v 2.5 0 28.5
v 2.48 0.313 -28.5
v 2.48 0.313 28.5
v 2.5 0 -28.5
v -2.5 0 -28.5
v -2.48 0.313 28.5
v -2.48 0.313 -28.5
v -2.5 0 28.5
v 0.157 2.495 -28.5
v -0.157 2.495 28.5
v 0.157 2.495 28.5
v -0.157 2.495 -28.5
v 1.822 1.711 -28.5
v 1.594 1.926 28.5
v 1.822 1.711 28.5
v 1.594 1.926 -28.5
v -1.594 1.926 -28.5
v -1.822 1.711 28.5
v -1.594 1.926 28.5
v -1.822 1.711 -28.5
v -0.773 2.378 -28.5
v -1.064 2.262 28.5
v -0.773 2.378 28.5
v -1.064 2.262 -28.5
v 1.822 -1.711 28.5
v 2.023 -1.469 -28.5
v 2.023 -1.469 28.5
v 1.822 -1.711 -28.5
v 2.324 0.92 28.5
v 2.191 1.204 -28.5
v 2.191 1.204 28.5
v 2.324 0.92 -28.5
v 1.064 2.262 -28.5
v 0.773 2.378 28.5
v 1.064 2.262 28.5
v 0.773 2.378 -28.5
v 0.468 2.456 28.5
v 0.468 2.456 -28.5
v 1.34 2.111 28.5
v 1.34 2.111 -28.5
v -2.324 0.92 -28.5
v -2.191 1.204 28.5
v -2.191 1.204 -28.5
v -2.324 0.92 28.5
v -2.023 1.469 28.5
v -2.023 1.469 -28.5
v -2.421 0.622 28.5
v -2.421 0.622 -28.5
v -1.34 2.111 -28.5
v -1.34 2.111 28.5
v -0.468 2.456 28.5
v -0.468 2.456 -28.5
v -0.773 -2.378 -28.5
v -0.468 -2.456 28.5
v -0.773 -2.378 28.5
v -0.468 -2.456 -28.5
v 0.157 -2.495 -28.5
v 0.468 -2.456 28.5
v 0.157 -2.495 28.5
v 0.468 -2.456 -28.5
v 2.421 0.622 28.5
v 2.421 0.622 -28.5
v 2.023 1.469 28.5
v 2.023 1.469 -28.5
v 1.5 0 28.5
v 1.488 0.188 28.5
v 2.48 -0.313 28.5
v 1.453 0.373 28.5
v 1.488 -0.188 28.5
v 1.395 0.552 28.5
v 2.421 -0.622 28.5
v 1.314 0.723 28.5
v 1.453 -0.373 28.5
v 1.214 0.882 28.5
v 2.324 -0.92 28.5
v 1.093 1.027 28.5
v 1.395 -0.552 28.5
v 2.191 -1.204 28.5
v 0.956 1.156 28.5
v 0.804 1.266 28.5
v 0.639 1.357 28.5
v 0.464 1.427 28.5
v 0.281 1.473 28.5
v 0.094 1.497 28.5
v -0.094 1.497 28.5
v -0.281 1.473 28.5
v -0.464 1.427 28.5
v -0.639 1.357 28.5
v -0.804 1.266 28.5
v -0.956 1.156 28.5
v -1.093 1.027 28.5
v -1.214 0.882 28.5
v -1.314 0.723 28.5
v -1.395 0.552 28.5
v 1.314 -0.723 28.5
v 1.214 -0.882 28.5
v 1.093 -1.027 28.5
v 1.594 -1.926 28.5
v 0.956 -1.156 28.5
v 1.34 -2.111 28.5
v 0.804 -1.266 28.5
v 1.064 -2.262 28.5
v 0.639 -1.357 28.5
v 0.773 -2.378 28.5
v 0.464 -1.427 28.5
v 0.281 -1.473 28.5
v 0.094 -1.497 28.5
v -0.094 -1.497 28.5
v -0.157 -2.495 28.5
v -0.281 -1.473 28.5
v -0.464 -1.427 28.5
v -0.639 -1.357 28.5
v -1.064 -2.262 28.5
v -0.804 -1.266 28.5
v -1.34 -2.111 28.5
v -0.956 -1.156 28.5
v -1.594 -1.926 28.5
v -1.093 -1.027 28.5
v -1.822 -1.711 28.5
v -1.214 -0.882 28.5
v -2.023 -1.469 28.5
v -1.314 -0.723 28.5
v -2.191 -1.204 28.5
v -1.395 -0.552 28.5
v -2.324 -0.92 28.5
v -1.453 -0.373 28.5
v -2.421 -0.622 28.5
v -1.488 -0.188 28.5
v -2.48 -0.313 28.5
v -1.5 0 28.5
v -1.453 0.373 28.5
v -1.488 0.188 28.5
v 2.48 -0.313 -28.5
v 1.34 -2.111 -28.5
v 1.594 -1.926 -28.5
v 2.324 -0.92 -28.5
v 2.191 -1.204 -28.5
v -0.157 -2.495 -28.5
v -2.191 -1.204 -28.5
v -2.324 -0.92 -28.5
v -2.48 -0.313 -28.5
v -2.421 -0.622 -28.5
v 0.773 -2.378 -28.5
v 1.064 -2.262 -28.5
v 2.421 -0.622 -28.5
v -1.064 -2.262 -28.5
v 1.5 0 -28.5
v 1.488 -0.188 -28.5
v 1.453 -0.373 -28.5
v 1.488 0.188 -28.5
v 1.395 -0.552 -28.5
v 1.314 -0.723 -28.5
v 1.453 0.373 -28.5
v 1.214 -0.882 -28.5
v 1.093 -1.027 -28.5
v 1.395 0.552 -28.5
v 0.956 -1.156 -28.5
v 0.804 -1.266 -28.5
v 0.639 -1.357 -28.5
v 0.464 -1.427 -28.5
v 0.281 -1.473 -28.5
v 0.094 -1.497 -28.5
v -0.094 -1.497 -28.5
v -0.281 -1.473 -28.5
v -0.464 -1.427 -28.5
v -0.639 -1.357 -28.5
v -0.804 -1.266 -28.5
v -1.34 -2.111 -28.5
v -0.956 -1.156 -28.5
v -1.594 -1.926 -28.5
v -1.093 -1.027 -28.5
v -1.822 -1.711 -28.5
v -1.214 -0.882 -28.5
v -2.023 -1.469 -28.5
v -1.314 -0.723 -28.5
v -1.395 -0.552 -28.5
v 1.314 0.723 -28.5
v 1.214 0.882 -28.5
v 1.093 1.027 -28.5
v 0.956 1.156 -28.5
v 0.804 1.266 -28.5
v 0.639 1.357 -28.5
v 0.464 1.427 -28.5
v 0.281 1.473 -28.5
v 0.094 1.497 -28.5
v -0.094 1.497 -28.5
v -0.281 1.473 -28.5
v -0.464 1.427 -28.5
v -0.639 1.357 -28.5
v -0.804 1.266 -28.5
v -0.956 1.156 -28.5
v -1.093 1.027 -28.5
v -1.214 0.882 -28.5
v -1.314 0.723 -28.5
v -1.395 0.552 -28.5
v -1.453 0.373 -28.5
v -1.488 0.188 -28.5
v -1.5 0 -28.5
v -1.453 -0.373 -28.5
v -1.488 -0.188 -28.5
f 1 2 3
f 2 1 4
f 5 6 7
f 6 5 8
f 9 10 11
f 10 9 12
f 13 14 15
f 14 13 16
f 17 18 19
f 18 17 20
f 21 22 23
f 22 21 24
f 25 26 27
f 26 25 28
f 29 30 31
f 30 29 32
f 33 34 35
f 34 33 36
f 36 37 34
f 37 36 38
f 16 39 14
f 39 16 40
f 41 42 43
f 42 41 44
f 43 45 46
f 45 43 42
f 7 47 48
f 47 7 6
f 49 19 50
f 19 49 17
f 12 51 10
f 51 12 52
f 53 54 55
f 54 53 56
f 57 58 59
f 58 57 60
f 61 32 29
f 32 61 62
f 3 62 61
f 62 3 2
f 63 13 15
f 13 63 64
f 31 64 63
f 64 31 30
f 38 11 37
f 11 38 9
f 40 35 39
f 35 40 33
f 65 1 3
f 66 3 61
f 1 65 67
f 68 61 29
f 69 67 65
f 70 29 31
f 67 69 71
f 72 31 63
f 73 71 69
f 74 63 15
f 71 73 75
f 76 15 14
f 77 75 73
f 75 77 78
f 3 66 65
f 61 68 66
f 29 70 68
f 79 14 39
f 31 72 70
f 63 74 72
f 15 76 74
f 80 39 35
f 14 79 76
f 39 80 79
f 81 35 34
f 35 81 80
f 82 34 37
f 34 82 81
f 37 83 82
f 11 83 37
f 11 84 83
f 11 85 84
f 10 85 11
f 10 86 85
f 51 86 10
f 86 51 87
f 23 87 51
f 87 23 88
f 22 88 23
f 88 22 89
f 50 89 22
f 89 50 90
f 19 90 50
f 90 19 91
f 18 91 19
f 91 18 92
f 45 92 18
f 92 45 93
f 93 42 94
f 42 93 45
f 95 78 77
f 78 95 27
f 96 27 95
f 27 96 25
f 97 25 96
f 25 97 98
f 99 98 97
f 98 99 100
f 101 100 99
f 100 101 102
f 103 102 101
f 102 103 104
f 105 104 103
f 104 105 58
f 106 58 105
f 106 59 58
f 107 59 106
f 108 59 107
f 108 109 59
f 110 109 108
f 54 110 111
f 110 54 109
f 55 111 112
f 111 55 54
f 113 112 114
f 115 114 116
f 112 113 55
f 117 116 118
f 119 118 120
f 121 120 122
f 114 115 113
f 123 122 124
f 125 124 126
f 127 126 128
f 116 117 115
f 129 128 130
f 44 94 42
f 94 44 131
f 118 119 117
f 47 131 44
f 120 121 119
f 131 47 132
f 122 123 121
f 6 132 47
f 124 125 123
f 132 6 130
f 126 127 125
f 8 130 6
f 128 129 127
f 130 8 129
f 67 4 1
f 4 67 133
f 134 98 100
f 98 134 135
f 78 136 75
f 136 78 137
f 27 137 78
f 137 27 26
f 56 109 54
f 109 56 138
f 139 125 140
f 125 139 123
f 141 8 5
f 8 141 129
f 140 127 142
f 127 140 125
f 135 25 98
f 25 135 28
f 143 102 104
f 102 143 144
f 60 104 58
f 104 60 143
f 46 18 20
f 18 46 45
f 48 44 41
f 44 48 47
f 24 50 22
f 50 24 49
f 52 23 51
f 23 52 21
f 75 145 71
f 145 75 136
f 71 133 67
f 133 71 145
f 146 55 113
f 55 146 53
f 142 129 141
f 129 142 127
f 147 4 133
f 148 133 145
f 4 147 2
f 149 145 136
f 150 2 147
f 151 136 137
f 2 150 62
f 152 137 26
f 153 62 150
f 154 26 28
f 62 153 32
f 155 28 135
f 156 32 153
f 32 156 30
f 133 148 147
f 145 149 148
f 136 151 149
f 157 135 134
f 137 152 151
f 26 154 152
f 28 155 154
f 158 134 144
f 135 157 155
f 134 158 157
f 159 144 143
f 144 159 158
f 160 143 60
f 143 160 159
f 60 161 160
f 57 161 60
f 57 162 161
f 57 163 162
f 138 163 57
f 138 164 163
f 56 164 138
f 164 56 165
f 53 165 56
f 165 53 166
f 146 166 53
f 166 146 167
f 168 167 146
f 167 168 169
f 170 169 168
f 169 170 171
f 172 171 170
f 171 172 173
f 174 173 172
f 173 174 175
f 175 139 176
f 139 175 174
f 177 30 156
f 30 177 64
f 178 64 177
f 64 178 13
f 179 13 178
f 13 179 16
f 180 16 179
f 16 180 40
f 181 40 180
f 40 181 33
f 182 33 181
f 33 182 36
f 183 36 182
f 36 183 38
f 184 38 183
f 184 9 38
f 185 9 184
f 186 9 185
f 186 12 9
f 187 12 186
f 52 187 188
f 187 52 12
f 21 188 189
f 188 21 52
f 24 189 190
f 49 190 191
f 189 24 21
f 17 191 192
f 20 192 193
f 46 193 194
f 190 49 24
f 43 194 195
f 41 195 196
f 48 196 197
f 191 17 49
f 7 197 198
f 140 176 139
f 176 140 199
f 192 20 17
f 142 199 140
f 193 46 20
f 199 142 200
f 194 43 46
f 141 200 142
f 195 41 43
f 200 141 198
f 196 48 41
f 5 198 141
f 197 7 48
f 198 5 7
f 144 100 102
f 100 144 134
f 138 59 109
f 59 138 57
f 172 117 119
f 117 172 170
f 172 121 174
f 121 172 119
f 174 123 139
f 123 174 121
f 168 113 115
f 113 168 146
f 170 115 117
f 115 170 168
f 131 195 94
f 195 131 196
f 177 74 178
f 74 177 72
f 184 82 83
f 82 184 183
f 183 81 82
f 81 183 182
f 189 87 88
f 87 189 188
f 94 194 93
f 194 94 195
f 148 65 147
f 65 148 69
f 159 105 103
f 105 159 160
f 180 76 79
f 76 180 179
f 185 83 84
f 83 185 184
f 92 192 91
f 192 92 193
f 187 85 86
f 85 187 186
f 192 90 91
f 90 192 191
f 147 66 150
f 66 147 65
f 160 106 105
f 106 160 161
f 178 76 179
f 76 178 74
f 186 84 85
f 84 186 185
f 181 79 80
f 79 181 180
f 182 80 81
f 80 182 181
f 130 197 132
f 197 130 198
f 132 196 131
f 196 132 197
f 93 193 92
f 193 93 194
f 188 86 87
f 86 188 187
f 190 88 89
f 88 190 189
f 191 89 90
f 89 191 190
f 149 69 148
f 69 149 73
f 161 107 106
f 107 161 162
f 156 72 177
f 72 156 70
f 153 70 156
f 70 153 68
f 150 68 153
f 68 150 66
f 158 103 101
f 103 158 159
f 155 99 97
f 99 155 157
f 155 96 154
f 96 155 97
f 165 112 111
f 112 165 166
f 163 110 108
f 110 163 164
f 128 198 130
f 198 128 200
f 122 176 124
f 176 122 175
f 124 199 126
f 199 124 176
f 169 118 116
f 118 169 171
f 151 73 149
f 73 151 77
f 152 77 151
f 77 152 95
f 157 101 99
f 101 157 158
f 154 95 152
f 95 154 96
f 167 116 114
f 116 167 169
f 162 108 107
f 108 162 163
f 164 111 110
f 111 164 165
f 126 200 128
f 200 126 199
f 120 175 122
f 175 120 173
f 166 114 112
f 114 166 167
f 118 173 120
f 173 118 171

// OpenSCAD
$fn = 50;


difference() {
	union() {
		translate(v = [0, 0, -28.5000000000]) {
			cylinder(h = 57, r = 2.5000000000);
		}
	}
	union() {
		translate(v = [0, 0, -100.0000000000]) {
			cylinder(h = 200, r = 1.5000000000);
		}
	}
}
